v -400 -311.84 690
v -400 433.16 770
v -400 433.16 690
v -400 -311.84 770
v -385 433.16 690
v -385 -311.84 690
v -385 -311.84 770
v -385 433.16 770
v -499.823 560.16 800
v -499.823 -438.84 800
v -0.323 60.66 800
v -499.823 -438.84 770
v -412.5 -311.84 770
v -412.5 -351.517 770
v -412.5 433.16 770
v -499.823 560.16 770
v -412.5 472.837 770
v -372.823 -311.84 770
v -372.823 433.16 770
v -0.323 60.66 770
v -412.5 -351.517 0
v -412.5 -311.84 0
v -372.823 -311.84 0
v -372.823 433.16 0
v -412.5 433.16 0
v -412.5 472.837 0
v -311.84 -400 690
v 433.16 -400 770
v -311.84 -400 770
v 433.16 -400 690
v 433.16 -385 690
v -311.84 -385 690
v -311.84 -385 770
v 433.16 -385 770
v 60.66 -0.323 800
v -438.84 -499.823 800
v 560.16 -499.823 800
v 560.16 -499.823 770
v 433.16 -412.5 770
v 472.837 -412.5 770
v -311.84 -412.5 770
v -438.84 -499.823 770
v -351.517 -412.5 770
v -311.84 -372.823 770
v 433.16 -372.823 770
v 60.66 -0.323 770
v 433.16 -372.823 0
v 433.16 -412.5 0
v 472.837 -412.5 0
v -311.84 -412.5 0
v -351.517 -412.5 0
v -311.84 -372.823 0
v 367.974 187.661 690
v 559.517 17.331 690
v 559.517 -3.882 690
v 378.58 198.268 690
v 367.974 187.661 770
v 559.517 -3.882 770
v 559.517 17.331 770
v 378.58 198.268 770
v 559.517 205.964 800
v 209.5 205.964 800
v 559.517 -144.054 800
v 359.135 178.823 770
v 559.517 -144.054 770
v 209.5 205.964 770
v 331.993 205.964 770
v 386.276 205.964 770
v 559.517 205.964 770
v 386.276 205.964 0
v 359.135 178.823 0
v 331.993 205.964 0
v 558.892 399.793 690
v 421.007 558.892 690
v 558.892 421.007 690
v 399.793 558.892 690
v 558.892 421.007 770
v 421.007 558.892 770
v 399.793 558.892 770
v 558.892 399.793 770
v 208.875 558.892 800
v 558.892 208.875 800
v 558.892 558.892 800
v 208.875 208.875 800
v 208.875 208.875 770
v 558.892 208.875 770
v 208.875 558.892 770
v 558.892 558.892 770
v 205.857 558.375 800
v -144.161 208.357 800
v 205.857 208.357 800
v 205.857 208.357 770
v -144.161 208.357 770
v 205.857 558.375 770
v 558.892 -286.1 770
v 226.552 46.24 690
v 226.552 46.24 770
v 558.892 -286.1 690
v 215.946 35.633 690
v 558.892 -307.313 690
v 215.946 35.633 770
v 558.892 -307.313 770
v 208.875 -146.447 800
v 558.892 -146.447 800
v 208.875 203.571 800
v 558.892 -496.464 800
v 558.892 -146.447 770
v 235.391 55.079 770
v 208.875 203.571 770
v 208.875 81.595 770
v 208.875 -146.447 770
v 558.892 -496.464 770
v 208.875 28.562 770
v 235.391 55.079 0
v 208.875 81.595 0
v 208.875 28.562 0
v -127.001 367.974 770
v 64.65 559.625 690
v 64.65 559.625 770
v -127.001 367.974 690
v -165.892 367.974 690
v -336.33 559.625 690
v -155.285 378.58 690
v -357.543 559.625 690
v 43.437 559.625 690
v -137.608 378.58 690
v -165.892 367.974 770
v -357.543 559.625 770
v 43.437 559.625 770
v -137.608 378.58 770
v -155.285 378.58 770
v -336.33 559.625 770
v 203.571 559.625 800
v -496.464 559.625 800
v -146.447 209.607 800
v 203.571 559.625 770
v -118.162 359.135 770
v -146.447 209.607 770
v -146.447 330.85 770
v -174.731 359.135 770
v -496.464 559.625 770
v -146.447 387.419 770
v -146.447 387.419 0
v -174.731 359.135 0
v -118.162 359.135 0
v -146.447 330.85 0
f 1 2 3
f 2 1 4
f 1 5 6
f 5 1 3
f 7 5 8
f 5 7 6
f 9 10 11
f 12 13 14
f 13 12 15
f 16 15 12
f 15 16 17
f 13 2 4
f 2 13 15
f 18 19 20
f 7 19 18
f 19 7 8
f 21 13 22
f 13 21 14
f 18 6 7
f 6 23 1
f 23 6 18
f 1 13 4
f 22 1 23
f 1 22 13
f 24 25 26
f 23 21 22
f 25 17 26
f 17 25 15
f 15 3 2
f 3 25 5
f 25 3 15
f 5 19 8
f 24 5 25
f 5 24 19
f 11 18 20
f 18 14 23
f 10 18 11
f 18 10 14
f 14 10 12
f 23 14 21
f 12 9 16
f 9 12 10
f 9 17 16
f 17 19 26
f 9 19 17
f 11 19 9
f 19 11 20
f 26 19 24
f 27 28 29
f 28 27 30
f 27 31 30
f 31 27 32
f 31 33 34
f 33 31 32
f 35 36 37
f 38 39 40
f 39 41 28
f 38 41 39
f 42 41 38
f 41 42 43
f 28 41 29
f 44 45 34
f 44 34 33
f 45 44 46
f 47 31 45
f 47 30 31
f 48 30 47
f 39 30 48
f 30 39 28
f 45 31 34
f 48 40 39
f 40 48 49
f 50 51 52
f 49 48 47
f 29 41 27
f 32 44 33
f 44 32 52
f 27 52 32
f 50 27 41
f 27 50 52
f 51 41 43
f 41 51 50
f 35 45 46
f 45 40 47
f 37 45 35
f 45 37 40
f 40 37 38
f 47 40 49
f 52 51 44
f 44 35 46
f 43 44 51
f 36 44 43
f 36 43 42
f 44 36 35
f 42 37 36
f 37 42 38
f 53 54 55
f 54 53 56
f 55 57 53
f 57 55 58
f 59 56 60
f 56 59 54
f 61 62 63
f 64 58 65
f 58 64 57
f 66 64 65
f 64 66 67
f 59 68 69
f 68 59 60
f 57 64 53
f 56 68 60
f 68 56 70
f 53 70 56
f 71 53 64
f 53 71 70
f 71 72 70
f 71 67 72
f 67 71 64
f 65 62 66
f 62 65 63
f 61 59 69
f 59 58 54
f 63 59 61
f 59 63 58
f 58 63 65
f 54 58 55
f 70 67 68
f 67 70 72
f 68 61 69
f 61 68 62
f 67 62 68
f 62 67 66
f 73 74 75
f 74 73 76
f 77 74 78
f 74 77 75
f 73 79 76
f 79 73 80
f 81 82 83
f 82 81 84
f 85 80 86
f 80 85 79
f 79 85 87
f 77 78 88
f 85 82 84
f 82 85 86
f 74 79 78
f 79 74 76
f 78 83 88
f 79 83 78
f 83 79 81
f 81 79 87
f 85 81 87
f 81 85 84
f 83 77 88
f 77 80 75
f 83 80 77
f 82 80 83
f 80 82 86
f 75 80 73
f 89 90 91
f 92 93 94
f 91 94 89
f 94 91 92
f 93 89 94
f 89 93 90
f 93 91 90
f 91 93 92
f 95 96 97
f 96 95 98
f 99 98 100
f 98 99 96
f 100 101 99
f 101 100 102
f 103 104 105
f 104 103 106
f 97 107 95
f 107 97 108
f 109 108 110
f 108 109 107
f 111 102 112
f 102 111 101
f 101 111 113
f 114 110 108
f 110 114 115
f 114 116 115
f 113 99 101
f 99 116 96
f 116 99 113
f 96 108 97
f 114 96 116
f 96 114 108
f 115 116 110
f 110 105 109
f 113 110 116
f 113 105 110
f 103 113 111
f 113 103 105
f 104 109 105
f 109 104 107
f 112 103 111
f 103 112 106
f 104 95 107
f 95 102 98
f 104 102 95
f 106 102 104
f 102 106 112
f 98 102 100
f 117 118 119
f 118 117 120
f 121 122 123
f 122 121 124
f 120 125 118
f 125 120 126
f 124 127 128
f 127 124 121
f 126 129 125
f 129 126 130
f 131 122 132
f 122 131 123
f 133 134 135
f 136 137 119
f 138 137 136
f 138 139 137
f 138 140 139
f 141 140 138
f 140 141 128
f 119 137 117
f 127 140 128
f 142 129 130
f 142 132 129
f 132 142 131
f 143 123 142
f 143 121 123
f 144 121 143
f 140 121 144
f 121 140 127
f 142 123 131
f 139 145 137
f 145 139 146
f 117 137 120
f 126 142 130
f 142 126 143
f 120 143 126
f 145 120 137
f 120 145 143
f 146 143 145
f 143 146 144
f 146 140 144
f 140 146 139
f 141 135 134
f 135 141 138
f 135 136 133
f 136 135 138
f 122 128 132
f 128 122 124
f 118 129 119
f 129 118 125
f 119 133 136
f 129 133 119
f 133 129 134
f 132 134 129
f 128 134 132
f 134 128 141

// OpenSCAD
width=1000;
height=800;
thickness=30;
leg_diameter=40;
skirt=80;
skirt_thickness=15;
overhang=100;

module tangramtafel(
    w=width,
    h=height,
    t=thickness,
    d=leg_diameter,
    s=skirt,
    st=skirt_thickness,
    o=overhang
) {
    module table(){
        union(){
            translate([0,0,h-t])
                cube([w,w,t]);
            translate([0,0,h-t-s])
                difference(){
                    translate([o,o,0])
                        cube([w-2*o,w-2*o,s+st/16]);
                    translate([o+st,o+st,st/-2])
                        cube([w-2*o-2*st,w-2*o-2*st,s+st]);
            }
            translate([o-(d-st)/2,o-(d-st)/2,0])
                cube([d,d,h-t/2]);
            translate([o-(d-st)/2,w-d/2-o-st/2,0])
                cube([d,d,h-t/2]);
            translate([w-d/2-o-st/2,o-(d-st)/2,0])
                cube([d,d,h-t/2]);
            translate([w-d/2-o-st/2,w-d/2-o-st/2,0])
                cube([d,d,h-t/2]);
        
        } 
        
    }
    
    dia = sin(45)*w/2;
    sc=0.99;
    sc2=0.999;
    module triangle1() {
        translate([dia/2,w/2,0])
            scale([sc2,sc2,1])
                translate([-dia/2,-w/2,0])
                    polygon([[0,0],[0,w],[w/2,w/2]]); 
    }
    
    module triangle2() {
        translate([w/2,w-dia/2,0])
            scale([sc2,sc2,1])
                translate([-w/2,dia/2-w,0])
                    polygon([[w,w],[0,w],[w/2,w/2]]);
    }
      
    module triangle3() {
        translate([w/4,dia/4,0])
            scale([sc,sc,1])
                translate([-w/4,-dia/4,0])
                    polygon([[0,0],[w/2,0],[w/4,w/4]]);
    }
    
    module triangle4() {
        translate([(w+dia)/2,w/2,0])
            scale([sc,sc,1])
                translate([-(w+dia)/2,-w/2,0])
                    polygon([[w/2,w/2],[3*w/4,w/4],[3*w/4,3*w/4]]);
    }
    
    module triangle5() {
        translate([w,0,0])
            rotate(-135)
                translate([0,-w/4,0])
                    scale([sc,sc,1])
                        translate([0,w/4,0])
                            rotate(135)
                                translate([-w,0,0])
                                    polygon([[w/2,0],[w,0],[w,w/2]]);
    }

   module square() {
        translate([w/2,w/4,0])
            scale([sc,sc,1])
                translate([-w/2,-w/4,0])
                    polygon([[w/2,0],[w/4,w/4],[w/2,w/2],[3*w/4,w/4]]);
    }
   
   module lozenge() {
       translate([7*w/8,5*w/8,0])
            scale([sc,sc,1])
                translate([-7*w/8,-5*w/8,0])
                    polygon([[3*w/4,w/4],[3*w/4,3*w/4],[w,w],[w,w/2]]);
    }
   
    translate([-w/2,-w/2,0])
    union() {
    translate([0,3*dia-w,0])
        intersection() {
            table();
            linear_extrude(h+1)
                triangle1();   
        }
        
    translate([3*dia,0,0])
        rotate(180)
            translate([0,-w,0])
                intersection() {
                    table();
                    linear_extrude(h+1)
                        triangle2();
                }
   
    translate([2*dia,2*dia,0])
        rotate(-45)
            intersection() {
                    table();
                    linear_extrude(h+1)
                        triangle3();
            }
    
    translate([3*dia,3*dia,0])
        rotate(135)
            translate([-w/2,0,0])
            intersection() {
                table();
                linear_extrude(h+1)
                    square();
            }
        
    translate([2*dia,2*dia,0])
        rotate(135)
            translate([-w/2,-w/2,0])
                intersection() {
                    table();
                    linear_extrude(h+1)
                        triangle4();
                }
    
    translate([3*dia,0,0])
        rotate(45)
            translate([-3*w/4,-w/4,0])
                intersection() {
                    table();
                    linear_extrude(h+1)
                        lozenge();
                }
                
    translate([0,3*dia,0])
        rotate(-45)
            translate([-w/2,0,0])
               intersection() {
                    table();
                    linear_extrude(h+1)
                        triangle5();
               }
    }
}

tangramtafel();
